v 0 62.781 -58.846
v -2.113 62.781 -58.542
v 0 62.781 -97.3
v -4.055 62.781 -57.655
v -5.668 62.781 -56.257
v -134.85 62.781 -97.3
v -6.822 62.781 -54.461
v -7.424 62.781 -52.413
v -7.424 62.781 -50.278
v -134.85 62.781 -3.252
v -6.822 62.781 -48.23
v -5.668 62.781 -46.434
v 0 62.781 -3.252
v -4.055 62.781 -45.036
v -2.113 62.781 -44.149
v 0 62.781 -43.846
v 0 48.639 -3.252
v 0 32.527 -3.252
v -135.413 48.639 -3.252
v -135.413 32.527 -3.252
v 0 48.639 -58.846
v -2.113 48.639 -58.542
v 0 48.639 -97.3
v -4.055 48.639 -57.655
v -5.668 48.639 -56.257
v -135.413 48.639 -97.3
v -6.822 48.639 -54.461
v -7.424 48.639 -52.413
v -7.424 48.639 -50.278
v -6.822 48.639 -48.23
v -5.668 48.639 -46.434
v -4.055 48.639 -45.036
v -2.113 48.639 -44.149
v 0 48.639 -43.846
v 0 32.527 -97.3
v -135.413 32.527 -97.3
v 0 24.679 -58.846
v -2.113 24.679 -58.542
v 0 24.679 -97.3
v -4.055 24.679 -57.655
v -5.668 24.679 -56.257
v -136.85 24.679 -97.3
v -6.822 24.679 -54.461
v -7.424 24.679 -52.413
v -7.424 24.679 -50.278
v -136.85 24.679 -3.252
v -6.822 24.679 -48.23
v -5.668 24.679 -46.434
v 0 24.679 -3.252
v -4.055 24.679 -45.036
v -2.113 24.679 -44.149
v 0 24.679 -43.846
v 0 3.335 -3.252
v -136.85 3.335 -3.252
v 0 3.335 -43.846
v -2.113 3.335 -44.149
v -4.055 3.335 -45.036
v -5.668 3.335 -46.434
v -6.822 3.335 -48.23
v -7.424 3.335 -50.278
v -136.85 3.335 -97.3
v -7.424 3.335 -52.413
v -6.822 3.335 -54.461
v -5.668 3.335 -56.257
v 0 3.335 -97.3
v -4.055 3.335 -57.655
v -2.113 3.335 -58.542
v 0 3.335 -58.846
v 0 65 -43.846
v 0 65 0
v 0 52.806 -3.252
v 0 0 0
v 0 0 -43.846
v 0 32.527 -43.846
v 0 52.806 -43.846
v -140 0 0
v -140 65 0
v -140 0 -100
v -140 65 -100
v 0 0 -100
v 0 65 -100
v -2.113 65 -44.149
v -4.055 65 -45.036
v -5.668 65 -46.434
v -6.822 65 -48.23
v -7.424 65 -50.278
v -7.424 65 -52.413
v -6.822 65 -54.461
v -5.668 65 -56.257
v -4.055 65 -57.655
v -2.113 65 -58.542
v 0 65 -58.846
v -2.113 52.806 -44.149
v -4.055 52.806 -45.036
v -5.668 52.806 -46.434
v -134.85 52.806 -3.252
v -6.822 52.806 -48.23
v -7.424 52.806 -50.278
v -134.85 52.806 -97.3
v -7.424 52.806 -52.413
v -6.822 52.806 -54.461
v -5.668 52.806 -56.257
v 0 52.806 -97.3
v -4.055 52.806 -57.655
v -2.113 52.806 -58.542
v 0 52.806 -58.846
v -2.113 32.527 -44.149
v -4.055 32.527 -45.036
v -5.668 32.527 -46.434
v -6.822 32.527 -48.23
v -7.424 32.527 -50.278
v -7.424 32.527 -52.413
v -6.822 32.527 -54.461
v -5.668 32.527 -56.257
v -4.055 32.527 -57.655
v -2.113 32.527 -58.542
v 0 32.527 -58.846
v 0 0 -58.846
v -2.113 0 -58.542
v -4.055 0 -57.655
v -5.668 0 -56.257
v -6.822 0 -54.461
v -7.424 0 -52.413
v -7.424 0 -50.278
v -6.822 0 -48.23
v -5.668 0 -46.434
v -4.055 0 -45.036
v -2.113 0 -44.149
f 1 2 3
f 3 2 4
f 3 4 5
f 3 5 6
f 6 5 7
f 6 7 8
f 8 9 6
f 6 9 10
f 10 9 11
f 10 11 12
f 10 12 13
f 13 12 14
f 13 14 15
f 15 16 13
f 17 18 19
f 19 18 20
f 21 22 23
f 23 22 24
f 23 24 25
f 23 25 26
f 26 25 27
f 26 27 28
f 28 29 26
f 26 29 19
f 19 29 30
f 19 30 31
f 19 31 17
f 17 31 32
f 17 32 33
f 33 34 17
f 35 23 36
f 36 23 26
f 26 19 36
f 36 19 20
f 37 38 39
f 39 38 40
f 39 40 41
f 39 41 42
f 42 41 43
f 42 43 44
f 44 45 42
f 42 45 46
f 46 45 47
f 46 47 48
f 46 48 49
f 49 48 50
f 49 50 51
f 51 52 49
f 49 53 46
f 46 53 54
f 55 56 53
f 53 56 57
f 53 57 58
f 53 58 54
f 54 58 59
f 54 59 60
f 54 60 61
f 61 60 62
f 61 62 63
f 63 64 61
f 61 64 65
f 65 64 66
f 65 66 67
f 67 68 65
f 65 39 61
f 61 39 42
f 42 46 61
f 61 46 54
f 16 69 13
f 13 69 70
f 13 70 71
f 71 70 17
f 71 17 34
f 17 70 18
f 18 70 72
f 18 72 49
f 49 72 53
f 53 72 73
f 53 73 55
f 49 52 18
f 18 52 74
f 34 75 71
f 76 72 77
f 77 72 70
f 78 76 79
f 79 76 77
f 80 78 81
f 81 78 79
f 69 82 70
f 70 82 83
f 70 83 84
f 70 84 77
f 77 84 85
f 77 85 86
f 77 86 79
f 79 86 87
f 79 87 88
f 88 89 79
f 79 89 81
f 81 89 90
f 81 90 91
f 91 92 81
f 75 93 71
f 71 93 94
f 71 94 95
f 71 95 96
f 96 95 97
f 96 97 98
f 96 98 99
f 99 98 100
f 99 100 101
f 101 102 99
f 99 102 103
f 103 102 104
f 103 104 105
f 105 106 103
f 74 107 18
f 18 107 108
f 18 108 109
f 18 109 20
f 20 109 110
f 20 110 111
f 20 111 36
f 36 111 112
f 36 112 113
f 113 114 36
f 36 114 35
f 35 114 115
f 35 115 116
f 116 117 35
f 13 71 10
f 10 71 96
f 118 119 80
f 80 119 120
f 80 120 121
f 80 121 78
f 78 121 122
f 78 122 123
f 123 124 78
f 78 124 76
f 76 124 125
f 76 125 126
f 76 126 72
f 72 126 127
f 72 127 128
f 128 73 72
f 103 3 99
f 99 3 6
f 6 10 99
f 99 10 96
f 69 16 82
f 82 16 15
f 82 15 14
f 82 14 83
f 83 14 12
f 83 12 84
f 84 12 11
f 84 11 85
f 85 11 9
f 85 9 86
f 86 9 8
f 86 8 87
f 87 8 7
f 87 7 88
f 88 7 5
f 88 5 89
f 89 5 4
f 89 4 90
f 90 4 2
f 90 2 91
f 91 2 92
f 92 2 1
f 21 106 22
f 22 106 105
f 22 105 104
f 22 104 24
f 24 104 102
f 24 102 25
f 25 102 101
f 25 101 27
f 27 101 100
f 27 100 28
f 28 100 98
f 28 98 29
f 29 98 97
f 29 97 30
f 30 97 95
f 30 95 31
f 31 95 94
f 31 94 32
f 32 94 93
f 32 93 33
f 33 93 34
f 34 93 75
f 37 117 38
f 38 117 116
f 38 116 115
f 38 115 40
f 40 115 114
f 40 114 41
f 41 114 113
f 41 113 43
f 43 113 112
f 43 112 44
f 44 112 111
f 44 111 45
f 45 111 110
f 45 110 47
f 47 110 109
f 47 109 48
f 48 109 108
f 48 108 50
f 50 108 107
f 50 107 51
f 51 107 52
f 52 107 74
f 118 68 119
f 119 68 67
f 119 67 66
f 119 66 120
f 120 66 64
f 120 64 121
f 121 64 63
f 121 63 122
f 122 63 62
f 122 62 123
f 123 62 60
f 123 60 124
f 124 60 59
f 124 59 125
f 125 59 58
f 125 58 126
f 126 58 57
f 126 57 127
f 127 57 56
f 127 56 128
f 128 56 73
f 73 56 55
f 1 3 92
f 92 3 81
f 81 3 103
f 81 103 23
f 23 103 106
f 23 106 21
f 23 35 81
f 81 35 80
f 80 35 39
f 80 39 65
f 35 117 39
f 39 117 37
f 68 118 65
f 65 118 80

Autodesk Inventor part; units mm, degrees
ref_plane "YZ Plane" through (0, 0, 0) normal (1, 0, 0) x (0, 1, 0)
ref_plane "XZ Plane" through (0, 0, 0) normal (0, 1, 0) x (-1, 0, 0)
ref_plane "XY Plane" through (0, 0, 0) normal (0, 0, 1) x (1, 0, 0)
sketch "Sketch1" plane through (0, 0, 0) normal (0, 1, 0) x (-1, 0, 0)
  point P0 (0, 0)
sketch "Sketch2" plane through (0, 0, 0) normal (0, 1, 0) x (-1, 0, 0)
  point P0 (0, 0)
sketch "Sketch3" plane through (0, 0, 0) normal (0, 1, 0) x (-1, 0, 0)
  line L0 (0, 0) -> (140, 0)
  line L1 (140, 0) -> (140, -100)
  line L2 (140, -100) -> (0, -100)
  line L3 (0, -100) -> (0, 0)
  dimension "d0" = 140
  dimension "d1" = 100
extrude "Extrusion1" add sketch "Sketch3" along normal blind 65
sketch "Sketch4" plane through (0, 0, 0) normal (1, 0, 0) x (0, 0, -1)
  line L0 (3.2517, 3.335) -> (97.2996, 3.335)
  line L1 (97.2996, 3.335) -> (97.2996, 24.6792)
  line L2 (97.2996, 24.6792) -> (3.2517, 24.6792)
  line L3 (3.2517, 24.6792) -> (3.2517, 3.335)
  point P0 (0, 0)
extrude "Extrusion2" cut sketch "Sketch4" against normal blind 136.85
sketch "Sketch6" plane through (0, 0, 0) normal (1, 0, 0) x (0, 0, -1)
  line L0 (3.2517, 32.5271) -> (97.2996, 32.5271)
  line L1 (97.2996, 32.5271) -> (97.2996, 48.6393)
  line L2 (97.2996, 48.6393) -> (3.2517, 48.6393)
  line L3 (3.2517, 48.6393) -> (3.2517, 32.5271)
  point P0 (0, 0)
extrude "Extrusion4" cut sketch "Sketch6" against normal blind 135.4125
sketch "Sketch7" plane through (0, 0, 0) normal (1, 0, 0) x (0, 0, -1)
  line L0 (3.2517, 52.8064) -> (97.2996, 52.8064)
  line L1 (97.2996, 52.8064) -> (97.2996, 62.7809)
  line L2 (97.2996, 62.7809) -> (3.2517, 62.7809)
  line L3 (3.2517, 62.7809) -> (3.2517, 52.8064)
  point P0 (0, 0)
extrude "Extrusion5" cut sketch "Sketch7" against normal blind 134.85
sketch "Sketch8" plane through (0, 0, 0) normal (1, 0, 0) x (0, 0, -1)
  line L0 (97.2996, 62.7809) -> (97.2996, 52.8064) projected
  line L1 (3.2517, 52.8064) -> (3.2517, 62.7809) projected
  line L2 (97.2996, 52.8064) -> (3.2517, 52.8064) projected
  line L3 (3.2517, 62.7809) -> (97.2996, 62.7809) projected
  line L4 (97.2996, 32.5271) -> (3.2517, 32.5271) projected
  line L5 (3.2517, 48.6393) -> (97.2996, 48.6393) projected
  line L6 (97.2996, 48.6393) -> (97.2996, 32.5271) projected
  line L7 (3.2517, 32.5271) -> (3.2517, 48.6393) projected
  line L8 (97.2996, 24.6792) -> (97.2996, 3.335) projected
  line L9 (3.2517, 3.335) -> (3.2517, 24.6792) projected
  line L10 (97.2996, 3.335) -> (3.2517, 3.335) projected
  line L11 (3.2517, 24.6792) -> (97.2996, 24.6792) projected
  point P0 (0, 0)
  point P1 (3.2517, 57.7937)
  dimension "d20" = 94.048
  dimension "d21" = 9.9745
  dimension "d22" = 16.1122
  dimension "d23" = 94.048
  dimension "d24" = 94.048
  dimension "d25" = 21.3442
sketch "Sketch9" plane through (0, 0, 0) normal (1, 0, 0) x (0, 0, -1)
  line L0 (100, 0) -> (100, 65) projected
  line L1 (0, 0) -> (0, 65) projected
  line L2 (0, 0) -> (100, 0) projected
  line L3 (0, 65) -> (100, 65) projected
  line L4 (3.2517, 62.7809) -> (97.2996, 62.7809) projected
  line L5 (3.2517, 52.8064) -> (3.2517, 62.7809) projected
  line L6 (3.2517, 48.6393) -> (97.2996, 48.6393) projected
  line L7 (97.2996, 52.8064) -> (3.2517, 52.8064) projected
  line L8 (3.2517, 32.5271) -> (3.2517, 48.6393) projected
  line L9 (3.2517, 24.6792) -> (97.2996, 24.6792) projected
  line L10 (97.2996, 32.5271) -> (3.2517, 32.5271) projected
  line L11 (97.2996, 48.6393) -> (97.2996, 32.5271) projected
  line L12 (3.2517, 3.335) -> (3.2517, 24.6792) projected
  line L13 (97.2996, 24.6792) -> (97.2996, 3.335) projected
  line L14 (97.2996, 3.335) -> (3.2517, 3.335) projected
  dimension "d26" = 100
  dimension "d27" = 65
  dimension "d28" = 2.2191
  dimension "d29" = 3.2517
  dimension "d30" = 4.167
  dimension "d31" = 3.2517
  dimension "d32" = 7.8479
  dimension "d33" = 2.7004
  dimension "d34" = 3.2517
  dimension "d35" = 2.7004
  dimension "d36" = 3.335
sketch "Sketch10" plane through (0, 65, 0) normal (0, 1, 0) x (1, 0, 0)
  line L0 (0, 0) -> (0, 100) projected
  circle A0 centre (0, 51.3457) radius 7.5
  point P0 (0, 58.8457)
  point P1 (0, 43.8457)
  dimension "d37" = 15
extrude "Extrusion6" cut sketch "Sketch10" against normal blind 65 contours A0 L0 picked at (-3.0801, 51.117)
properties part number "hddcase"
